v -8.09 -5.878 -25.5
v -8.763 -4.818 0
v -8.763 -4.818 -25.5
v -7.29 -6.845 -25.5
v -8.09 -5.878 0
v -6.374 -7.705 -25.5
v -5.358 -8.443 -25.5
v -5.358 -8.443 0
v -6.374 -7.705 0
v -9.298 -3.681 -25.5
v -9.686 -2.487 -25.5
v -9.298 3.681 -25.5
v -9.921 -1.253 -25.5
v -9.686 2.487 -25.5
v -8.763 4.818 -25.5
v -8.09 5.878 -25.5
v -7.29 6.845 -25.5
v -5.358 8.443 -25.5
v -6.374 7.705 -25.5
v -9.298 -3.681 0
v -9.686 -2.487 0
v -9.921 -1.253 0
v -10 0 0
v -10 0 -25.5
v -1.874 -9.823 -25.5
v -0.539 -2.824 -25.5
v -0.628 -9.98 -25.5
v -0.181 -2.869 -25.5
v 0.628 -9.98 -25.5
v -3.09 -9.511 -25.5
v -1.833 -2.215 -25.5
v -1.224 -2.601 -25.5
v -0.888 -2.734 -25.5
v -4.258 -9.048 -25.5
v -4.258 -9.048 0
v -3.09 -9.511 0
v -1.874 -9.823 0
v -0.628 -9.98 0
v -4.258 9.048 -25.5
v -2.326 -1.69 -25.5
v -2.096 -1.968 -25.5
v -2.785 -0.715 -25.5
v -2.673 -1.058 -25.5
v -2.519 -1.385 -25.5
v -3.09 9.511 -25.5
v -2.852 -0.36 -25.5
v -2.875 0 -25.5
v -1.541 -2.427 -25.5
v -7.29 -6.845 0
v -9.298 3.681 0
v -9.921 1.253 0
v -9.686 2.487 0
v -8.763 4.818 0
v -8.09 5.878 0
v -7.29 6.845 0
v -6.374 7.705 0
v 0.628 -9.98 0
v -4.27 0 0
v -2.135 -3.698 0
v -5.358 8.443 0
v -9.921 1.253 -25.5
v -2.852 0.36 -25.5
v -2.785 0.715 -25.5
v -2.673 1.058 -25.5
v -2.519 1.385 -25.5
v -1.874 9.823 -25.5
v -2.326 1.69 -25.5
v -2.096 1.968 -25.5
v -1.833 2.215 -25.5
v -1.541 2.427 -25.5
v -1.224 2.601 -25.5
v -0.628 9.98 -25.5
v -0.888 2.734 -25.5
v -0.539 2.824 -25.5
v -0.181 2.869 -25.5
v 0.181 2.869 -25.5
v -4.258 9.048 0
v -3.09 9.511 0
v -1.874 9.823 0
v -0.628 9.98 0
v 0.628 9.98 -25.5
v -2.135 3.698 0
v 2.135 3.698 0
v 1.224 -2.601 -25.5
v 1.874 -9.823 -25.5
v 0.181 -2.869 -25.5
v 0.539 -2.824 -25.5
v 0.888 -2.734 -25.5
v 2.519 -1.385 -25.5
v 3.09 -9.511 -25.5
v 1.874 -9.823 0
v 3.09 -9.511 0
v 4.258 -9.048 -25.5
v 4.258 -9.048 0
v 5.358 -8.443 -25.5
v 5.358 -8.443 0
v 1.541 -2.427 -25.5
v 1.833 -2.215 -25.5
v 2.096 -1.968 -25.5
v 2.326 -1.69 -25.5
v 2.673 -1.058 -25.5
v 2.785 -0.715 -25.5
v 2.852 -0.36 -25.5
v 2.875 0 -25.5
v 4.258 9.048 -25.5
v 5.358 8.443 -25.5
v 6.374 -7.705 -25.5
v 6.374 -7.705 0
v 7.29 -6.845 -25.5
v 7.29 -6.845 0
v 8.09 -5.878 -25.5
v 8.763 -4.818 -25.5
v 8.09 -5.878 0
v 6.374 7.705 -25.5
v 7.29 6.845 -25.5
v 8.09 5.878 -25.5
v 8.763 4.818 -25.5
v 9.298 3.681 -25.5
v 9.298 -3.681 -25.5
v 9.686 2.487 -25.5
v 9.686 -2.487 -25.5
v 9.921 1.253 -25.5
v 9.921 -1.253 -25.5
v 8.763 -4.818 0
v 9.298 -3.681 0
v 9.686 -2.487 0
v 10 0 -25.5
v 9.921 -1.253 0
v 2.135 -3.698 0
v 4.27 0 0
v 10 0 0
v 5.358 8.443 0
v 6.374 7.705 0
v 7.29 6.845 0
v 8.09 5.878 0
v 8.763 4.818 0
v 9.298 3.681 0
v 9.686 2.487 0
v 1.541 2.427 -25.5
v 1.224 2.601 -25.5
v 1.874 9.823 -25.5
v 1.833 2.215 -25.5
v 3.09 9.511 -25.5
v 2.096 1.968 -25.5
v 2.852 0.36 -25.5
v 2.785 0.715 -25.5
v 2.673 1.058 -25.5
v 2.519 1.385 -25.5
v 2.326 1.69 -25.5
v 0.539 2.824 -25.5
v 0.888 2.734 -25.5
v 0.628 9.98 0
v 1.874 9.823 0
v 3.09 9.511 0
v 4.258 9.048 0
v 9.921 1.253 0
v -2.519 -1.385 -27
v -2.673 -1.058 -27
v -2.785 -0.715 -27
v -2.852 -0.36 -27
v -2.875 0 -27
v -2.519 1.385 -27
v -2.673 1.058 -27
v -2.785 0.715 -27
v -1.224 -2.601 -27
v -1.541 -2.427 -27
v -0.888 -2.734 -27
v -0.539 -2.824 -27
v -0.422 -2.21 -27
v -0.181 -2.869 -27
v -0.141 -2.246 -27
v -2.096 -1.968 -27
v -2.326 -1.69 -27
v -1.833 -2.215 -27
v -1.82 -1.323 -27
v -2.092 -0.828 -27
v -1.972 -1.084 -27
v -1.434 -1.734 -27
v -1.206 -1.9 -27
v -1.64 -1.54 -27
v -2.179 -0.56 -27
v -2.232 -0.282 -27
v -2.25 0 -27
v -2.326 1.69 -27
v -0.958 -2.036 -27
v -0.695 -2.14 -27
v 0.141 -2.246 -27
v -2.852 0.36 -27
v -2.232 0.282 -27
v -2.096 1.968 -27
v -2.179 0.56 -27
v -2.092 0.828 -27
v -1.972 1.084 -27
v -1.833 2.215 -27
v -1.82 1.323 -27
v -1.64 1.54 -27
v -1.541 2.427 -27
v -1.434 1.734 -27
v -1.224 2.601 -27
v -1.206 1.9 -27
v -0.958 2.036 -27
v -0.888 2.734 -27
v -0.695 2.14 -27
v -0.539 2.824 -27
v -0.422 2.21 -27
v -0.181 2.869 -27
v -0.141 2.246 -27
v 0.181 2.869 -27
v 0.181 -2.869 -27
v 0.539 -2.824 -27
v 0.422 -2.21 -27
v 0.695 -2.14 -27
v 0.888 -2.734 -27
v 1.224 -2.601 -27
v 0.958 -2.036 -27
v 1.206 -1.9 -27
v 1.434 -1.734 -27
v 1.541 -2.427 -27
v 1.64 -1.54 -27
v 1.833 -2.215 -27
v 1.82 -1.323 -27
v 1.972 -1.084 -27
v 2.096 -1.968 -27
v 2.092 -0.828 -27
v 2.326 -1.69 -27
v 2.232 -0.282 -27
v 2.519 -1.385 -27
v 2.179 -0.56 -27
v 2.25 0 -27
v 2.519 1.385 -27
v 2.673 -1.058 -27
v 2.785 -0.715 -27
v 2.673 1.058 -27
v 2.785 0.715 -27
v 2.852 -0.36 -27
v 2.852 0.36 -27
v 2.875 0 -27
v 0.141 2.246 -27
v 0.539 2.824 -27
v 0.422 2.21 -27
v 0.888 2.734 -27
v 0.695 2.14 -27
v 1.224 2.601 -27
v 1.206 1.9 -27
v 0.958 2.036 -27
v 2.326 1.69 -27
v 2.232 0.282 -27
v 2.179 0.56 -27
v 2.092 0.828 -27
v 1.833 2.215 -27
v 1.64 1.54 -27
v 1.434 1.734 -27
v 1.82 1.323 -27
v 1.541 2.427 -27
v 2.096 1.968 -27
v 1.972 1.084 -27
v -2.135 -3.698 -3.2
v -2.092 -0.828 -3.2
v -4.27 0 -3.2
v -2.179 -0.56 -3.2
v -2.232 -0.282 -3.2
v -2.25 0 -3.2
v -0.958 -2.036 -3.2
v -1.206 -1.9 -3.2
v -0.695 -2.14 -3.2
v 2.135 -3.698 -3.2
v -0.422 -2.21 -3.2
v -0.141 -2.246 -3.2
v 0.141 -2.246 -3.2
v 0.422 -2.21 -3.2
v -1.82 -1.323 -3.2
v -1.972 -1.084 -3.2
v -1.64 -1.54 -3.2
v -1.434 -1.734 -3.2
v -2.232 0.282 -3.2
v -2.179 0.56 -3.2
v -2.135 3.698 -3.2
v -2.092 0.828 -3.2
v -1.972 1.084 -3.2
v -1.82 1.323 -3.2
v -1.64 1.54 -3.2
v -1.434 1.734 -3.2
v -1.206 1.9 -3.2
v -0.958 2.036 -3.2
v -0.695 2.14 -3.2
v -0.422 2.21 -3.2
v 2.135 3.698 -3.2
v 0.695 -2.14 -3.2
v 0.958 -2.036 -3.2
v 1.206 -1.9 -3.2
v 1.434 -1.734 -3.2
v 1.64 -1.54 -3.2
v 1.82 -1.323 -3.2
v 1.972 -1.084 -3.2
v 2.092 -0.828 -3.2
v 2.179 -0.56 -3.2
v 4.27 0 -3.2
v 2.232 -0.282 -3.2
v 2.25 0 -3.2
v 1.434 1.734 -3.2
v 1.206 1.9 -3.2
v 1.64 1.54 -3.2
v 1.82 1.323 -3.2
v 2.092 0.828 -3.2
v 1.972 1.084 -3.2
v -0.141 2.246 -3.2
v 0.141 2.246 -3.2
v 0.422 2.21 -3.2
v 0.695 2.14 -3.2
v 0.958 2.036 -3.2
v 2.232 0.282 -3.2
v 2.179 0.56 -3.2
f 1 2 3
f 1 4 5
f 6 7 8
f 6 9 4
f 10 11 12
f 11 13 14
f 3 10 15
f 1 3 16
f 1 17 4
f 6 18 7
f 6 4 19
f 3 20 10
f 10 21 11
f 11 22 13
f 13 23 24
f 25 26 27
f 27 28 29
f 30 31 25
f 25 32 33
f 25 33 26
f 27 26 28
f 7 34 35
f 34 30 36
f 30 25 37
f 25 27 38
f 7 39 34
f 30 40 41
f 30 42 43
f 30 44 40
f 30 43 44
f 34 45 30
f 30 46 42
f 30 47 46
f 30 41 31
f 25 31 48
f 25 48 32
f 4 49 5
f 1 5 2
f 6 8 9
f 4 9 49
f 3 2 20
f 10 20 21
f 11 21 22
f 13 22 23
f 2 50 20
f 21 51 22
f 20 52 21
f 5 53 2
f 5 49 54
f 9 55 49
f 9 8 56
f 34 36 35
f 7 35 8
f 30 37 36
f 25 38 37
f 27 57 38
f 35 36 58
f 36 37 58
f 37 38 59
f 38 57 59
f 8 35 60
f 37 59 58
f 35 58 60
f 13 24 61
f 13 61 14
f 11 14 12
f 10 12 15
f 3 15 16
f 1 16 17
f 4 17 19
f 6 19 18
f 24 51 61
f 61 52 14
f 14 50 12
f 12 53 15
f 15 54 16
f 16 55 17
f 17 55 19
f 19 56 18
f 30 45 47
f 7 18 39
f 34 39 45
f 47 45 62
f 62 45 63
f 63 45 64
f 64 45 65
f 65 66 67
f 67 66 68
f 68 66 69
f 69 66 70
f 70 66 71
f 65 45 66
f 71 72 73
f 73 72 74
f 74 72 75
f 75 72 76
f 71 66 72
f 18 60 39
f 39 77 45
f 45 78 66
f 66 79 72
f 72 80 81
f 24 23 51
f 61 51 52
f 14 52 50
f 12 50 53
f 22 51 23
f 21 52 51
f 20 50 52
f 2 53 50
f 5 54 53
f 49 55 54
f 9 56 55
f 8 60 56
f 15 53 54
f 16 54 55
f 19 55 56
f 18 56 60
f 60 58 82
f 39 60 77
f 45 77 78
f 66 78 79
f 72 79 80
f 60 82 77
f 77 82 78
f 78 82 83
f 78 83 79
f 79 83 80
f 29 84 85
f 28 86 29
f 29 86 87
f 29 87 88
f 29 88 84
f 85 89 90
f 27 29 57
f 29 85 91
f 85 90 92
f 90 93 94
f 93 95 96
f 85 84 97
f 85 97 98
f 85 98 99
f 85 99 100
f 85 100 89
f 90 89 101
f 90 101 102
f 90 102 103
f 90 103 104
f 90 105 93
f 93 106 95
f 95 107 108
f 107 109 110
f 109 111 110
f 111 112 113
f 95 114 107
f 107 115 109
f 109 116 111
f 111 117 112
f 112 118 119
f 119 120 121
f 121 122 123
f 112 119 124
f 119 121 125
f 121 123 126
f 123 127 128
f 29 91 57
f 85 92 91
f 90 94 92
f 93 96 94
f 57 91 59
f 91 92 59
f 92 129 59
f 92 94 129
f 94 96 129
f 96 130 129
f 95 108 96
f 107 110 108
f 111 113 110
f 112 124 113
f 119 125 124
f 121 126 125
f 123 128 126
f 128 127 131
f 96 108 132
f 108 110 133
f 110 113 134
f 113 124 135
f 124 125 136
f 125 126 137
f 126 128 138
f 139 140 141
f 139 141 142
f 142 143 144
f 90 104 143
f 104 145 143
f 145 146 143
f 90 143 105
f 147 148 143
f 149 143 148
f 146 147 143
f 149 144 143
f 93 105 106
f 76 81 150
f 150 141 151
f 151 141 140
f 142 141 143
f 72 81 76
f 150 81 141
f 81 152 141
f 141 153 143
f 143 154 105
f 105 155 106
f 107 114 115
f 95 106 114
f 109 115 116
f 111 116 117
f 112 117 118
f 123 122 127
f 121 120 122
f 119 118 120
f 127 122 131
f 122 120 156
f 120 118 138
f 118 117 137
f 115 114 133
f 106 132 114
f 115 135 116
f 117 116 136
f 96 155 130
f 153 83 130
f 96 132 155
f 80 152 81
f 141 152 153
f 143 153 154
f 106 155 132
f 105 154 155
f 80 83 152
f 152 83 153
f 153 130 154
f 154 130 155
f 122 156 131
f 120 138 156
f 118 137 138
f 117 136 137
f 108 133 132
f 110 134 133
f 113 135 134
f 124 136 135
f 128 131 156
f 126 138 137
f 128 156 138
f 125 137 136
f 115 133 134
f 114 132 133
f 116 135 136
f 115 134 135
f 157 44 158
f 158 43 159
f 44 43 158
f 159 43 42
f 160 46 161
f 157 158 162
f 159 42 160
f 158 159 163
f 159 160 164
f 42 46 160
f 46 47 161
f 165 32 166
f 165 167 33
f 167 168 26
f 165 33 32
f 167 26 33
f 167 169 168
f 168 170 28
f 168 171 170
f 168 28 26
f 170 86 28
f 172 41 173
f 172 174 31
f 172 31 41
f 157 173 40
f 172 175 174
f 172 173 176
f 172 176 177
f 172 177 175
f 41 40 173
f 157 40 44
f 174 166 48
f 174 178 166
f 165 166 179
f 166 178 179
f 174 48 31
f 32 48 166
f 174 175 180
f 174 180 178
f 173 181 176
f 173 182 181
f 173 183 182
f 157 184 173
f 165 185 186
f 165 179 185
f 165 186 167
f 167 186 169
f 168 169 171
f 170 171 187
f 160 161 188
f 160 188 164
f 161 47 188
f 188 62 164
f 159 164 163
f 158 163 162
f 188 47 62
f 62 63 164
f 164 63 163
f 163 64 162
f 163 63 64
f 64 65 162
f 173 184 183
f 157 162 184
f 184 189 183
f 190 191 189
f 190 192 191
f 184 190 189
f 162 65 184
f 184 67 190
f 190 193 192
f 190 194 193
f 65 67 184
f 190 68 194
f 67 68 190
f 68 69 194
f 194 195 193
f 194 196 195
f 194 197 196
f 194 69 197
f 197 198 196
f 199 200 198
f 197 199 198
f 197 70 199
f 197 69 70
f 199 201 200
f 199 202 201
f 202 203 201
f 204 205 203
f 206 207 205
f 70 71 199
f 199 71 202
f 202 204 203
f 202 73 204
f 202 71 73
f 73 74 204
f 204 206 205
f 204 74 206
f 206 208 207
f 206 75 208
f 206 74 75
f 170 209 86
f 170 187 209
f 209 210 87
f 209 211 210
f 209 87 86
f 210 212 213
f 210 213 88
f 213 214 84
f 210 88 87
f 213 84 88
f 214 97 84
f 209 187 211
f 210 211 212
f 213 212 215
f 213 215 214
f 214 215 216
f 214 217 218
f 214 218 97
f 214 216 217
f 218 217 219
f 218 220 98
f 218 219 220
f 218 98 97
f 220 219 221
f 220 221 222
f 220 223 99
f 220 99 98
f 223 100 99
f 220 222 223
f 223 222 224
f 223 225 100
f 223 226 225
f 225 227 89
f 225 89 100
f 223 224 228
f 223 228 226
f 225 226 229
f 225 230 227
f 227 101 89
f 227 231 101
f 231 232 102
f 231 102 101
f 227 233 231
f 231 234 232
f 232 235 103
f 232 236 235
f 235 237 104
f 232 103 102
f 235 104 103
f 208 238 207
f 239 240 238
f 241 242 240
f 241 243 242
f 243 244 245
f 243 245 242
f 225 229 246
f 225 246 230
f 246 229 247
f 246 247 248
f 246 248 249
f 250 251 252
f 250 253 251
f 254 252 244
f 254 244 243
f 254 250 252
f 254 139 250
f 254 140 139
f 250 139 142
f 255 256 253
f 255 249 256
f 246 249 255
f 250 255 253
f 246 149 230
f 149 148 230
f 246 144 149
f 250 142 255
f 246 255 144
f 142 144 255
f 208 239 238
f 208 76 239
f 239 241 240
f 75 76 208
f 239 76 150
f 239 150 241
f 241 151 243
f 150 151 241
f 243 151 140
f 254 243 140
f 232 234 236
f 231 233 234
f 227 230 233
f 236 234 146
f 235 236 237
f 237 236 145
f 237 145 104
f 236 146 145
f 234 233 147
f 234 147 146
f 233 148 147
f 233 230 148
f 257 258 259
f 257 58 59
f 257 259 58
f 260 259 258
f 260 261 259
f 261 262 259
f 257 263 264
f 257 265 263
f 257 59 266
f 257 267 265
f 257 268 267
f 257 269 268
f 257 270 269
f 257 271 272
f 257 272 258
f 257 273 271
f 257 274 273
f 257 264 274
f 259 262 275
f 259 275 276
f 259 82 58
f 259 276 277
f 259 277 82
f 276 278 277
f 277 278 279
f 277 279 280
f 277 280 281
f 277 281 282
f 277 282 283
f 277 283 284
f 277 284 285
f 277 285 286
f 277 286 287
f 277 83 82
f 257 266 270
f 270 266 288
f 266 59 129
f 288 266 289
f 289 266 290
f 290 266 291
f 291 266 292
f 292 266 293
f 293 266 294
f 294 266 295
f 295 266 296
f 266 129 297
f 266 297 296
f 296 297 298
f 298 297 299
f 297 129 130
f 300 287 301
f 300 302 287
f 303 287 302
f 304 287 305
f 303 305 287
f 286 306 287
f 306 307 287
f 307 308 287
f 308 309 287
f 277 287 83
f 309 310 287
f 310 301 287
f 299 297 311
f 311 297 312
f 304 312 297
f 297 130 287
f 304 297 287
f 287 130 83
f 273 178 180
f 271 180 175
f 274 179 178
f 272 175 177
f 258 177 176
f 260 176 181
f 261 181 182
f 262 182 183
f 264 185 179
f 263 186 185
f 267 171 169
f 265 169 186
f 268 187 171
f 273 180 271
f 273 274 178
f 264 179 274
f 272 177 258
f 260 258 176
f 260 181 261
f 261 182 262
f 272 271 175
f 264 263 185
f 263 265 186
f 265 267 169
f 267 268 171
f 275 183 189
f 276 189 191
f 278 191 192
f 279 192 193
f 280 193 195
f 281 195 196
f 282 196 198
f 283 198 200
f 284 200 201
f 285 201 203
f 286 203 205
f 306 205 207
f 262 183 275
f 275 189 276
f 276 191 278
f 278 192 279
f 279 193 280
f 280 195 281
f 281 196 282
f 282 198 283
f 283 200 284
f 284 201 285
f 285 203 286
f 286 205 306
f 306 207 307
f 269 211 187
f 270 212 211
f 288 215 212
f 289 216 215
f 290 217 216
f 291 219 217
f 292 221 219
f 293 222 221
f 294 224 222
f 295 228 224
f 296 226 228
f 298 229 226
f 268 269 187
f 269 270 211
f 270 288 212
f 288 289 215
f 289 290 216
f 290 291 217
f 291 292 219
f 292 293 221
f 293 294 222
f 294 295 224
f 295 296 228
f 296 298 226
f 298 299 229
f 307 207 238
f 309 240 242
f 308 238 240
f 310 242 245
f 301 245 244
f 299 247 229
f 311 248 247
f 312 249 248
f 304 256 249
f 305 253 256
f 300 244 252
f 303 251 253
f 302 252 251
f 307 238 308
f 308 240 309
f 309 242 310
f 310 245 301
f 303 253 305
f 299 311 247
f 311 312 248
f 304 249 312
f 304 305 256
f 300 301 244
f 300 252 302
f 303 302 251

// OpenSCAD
$fn = 50;

difference() {
	union() {
		translate(v = [0, 0, -25.5]) {
			cylinder(h = 25.5, r = 10.0);
		}
		#translate(v = [0, 0, -27.0]) {
			cylinder(h = 27, r = 2.875);
		}
	}
	union() {
		translate(v = [0, 0, 0]) {
			rotate(a = [0, 0, 0]) {
				difference() {
					union() {
						translate(v = [0, 0, -3.2]) {
							linear_extrude(height = 3.2) {
								polygon(points = [[4.2698, 0.0], [2.1349000000000005, 3.697755269078796], [-2.134899999999999, 3.6977552690787965], [-4.2698, 5.228996902999369e-16], [-2.134900000000002, -3.6977552690787956], [2.1348999999999974, -3.697755269078798]]);
							}
						}
					}
					union();
				}
			}
		}
		#translate(v = [0, 0, -100.0]) {
			cylinder(h = 200, r = 2.25);
		}
	}
}
